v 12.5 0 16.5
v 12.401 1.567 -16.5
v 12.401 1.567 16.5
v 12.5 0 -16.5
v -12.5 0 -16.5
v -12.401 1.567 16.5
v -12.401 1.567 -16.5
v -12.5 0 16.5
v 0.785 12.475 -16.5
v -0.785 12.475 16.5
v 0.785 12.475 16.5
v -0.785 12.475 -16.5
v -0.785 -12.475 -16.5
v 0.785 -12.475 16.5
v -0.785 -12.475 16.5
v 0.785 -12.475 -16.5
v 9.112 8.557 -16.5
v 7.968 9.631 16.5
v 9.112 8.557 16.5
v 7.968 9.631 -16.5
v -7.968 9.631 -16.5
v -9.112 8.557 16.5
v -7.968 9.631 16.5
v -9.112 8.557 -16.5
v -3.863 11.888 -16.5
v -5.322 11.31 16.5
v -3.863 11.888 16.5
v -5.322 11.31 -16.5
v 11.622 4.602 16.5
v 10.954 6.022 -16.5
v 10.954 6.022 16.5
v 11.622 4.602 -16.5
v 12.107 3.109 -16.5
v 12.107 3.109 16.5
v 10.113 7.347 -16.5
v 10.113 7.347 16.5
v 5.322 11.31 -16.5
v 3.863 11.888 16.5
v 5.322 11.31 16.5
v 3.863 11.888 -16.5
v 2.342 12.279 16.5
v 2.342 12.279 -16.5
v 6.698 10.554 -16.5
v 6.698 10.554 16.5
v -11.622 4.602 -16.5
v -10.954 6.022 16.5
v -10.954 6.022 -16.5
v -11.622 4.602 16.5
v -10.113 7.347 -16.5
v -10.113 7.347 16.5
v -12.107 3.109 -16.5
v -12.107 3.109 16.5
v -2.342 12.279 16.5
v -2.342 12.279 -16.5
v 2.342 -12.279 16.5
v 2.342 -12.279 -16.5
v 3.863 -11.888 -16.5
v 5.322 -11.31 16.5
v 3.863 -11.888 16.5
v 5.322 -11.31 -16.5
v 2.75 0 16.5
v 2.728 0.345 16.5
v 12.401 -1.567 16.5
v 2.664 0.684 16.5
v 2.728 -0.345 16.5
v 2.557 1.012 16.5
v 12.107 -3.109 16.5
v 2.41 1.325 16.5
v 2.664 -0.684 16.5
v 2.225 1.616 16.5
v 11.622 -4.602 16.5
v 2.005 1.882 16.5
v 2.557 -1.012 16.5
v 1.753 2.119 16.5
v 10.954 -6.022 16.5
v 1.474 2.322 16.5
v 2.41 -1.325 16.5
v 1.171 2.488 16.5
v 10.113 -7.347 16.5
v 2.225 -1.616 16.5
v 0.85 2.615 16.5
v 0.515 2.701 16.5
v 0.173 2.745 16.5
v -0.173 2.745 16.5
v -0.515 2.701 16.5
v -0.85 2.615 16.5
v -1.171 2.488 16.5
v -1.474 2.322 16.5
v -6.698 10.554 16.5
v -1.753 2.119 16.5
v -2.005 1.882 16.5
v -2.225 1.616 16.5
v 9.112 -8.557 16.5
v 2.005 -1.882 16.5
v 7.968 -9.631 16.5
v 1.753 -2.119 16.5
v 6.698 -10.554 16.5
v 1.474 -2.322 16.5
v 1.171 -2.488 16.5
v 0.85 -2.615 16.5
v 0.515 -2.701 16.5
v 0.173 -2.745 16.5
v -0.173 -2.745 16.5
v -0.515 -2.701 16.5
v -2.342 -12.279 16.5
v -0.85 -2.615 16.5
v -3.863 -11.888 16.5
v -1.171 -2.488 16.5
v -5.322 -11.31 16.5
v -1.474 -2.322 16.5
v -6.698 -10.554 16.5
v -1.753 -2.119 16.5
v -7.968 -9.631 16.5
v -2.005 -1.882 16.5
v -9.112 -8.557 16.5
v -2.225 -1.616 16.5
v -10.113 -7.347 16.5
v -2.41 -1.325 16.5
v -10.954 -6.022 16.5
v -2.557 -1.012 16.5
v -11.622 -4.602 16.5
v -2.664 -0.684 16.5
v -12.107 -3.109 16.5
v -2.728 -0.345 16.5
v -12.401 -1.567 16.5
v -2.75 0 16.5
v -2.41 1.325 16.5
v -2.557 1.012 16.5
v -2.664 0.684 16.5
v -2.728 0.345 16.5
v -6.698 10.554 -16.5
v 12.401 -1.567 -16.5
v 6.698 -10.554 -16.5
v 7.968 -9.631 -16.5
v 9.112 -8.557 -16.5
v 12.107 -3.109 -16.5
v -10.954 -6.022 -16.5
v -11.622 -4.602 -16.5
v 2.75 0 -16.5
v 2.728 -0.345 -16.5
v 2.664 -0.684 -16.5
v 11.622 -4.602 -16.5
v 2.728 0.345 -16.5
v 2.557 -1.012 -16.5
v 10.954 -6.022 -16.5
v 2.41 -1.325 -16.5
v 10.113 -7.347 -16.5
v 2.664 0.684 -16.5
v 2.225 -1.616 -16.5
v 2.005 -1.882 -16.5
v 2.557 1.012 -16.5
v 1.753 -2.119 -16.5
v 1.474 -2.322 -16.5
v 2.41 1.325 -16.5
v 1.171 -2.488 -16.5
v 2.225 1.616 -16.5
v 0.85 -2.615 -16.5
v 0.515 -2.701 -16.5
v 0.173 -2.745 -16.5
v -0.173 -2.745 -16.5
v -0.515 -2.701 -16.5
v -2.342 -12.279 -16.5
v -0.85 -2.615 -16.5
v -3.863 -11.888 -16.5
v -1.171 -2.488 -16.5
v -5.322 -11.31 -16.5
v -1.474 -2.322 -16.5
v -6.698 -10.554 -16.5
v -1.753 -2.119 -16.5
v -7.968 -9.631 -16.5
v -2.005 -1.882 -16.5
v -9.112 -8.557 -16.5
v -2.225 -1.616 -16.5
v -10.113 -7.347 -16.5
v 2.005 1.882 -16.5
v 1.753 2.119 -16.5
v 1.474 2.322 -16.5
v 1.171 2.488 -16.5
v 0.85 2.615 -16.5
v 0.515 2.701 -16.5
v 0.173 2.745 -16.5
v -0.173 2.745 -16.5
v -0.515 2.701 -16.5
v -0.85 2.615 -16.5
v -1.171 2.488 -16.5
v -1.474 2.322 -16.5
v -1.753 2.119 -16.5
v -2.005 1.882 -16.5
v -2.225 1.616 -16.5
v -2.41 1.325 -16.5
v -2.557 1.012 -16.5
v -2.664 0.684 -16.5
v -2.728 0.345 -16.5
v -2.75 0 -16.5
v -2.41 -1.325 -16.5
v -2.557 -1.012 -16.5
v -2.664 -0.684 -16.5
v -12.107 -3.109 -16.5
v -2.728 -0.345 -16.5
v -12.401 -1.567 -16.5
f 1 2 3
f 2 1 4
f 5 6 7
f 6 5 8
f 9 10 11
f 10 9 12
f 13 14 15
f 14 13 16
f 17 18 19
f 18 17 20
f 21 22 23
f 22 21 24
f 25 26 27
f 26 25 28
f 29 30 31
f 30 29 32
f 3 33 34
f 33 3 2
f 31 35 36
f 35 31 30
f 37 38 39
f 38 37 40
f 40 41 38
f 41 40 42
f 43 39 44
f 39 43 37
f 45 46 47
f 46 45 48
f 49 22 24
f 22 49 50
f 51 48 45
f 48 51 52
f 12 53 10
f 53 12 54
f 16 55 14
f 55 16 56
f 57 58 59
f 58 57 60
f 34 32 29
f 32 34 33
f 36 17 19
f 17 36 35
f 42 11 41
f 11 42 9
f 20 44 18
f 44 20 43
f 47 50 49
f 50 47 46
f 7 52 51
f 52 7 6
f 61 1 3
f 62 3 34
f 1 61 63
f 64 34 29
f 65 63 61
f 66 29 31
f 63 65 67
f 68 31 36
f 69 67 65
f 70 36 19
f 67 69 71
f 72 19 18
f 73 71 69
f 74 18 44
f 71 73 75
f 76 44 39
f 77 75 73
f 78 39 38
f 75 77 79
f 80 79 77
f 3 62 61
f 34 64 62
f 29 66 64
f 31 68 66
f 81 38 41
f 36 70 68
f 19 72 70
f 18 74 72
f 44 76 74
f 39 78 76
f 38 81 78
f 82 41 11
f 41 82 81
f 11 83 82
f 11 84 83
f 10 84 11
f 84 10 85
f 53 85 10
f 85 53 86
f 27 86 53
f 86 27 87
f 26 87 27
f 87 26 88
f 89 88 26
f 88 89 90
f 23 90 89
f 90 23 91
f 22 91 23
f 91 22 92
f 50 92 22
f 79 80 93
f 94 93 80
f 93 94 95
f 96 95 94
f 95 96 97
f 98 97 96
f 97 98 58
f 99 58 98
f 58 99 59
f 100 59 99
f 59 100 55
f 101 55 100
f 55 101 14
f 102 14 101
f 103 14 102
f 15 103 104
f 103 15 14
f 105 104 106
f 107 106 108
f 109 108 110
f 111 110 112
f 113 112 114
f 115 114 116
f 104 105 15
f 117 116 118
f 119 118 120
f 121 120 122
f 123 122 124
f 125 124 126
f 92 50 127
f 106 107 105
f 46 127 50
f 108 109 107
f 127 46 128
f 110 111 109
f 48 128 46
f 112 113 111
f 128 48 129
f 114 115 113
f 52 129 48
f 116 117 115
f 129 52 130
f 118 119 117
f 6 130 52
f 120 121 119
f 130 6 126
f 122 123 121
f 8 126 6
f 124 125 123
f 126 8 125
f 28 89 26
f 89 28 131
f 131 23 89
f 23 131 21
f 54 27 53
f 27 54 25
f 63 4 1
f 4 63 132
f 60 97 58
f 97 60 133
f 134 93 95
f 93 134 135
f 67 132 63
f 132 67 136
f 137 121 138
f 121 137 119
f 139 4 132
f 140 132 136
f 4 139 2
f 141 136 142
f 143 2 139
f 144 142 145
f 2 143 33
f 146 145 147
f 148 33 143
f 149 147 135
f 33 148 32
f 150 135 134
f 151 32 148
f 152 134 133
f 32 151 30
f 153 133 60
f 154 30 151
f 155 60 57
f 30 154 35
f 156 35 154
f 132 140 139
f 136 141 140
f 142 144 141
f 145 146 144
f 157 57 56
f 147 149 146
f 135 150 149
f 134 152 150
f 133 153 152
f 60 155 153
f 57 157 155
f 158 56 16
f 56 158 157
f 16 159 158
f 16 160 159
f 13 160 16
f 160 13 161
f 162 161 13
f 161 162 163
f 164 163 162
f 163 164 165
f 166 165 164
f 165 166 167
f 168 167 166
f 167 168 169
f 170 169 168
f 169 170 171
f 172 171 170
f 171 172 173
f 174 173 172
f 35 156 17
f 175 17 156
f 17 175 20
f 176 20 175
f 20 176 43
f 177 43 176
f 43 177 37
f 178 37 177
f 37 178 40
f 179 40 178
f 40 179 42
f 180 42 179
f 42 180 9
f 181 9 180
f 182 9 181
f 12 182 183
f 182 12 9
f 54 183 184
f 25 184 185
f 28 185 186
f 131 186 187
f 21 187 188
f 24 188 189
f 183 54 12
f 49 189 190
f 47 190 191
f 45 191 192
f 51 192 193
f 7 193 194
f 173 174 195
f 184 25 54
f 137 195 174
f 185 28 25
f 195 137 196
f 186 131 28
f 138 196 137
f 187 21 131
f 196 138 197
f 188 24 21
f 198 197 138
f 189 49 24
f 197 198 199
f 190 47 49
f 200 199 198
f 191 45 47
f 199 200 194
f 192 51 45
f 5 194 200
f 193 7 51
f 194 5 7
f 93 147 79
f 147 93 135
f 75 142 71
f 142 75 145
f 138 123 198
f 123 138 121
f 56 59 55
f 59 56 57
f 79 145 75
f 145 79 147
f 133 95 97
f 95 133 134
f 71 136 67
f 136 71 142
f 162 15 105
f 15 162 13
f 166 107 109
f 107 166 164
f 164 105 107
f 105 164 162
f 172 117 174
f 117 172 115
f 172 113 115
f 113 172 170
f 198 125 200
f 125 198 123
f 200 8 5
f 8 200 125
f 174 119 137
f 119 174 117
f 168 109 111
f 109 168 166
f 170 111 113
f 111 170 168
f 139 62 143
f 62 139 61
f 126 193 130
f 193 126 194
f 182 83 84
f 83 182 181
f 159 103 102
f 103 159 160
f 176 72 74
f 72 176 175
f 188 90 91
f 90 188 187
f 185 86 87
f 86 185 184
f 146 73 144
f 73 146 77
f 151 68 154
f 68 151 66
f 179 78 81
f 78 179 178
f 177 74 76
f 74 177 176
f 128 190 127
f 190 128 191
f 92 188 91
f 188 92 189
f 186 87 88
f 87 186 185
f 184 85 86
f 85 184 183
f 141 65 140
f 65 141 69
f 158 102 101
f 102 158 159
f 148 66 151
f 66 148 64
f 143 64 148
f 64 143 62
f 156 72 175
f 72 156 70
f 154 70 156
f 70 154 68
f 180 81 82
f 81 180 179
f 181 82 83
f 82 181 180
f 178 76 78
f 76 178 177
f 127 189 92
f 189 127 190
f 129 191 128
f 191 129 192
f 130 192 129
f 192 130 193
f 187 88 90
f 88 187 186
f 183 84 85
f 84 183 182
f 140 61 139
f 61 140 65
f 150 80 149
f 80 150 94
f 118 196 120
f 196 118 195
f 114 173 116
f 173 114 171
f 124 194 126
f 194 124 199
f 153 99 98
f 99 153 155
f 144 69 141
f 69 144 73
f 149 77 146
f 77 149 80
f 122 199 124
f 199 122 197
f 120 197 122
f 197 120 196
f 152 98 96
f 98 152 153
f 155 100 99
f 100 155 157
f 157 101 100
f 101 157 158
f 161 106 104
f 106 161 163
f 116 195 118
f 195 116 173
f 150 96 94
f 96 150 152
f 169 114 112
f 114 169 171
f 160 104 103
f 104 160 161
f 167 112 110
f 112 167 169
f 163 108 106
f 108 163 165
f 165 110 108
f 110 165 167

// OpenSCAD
$fn = 50;


difference() {
	union() {
		translate(v = [0, 0, -16.5000000000]) {
			cylinder(h = 33, r = 12.5000000000);
		}
	}
	union() {
		translate(v = [0, 0, -100.0000000000]) {
			cylinder(h = 200, r = 2.7500000000);
		}
	}
}
